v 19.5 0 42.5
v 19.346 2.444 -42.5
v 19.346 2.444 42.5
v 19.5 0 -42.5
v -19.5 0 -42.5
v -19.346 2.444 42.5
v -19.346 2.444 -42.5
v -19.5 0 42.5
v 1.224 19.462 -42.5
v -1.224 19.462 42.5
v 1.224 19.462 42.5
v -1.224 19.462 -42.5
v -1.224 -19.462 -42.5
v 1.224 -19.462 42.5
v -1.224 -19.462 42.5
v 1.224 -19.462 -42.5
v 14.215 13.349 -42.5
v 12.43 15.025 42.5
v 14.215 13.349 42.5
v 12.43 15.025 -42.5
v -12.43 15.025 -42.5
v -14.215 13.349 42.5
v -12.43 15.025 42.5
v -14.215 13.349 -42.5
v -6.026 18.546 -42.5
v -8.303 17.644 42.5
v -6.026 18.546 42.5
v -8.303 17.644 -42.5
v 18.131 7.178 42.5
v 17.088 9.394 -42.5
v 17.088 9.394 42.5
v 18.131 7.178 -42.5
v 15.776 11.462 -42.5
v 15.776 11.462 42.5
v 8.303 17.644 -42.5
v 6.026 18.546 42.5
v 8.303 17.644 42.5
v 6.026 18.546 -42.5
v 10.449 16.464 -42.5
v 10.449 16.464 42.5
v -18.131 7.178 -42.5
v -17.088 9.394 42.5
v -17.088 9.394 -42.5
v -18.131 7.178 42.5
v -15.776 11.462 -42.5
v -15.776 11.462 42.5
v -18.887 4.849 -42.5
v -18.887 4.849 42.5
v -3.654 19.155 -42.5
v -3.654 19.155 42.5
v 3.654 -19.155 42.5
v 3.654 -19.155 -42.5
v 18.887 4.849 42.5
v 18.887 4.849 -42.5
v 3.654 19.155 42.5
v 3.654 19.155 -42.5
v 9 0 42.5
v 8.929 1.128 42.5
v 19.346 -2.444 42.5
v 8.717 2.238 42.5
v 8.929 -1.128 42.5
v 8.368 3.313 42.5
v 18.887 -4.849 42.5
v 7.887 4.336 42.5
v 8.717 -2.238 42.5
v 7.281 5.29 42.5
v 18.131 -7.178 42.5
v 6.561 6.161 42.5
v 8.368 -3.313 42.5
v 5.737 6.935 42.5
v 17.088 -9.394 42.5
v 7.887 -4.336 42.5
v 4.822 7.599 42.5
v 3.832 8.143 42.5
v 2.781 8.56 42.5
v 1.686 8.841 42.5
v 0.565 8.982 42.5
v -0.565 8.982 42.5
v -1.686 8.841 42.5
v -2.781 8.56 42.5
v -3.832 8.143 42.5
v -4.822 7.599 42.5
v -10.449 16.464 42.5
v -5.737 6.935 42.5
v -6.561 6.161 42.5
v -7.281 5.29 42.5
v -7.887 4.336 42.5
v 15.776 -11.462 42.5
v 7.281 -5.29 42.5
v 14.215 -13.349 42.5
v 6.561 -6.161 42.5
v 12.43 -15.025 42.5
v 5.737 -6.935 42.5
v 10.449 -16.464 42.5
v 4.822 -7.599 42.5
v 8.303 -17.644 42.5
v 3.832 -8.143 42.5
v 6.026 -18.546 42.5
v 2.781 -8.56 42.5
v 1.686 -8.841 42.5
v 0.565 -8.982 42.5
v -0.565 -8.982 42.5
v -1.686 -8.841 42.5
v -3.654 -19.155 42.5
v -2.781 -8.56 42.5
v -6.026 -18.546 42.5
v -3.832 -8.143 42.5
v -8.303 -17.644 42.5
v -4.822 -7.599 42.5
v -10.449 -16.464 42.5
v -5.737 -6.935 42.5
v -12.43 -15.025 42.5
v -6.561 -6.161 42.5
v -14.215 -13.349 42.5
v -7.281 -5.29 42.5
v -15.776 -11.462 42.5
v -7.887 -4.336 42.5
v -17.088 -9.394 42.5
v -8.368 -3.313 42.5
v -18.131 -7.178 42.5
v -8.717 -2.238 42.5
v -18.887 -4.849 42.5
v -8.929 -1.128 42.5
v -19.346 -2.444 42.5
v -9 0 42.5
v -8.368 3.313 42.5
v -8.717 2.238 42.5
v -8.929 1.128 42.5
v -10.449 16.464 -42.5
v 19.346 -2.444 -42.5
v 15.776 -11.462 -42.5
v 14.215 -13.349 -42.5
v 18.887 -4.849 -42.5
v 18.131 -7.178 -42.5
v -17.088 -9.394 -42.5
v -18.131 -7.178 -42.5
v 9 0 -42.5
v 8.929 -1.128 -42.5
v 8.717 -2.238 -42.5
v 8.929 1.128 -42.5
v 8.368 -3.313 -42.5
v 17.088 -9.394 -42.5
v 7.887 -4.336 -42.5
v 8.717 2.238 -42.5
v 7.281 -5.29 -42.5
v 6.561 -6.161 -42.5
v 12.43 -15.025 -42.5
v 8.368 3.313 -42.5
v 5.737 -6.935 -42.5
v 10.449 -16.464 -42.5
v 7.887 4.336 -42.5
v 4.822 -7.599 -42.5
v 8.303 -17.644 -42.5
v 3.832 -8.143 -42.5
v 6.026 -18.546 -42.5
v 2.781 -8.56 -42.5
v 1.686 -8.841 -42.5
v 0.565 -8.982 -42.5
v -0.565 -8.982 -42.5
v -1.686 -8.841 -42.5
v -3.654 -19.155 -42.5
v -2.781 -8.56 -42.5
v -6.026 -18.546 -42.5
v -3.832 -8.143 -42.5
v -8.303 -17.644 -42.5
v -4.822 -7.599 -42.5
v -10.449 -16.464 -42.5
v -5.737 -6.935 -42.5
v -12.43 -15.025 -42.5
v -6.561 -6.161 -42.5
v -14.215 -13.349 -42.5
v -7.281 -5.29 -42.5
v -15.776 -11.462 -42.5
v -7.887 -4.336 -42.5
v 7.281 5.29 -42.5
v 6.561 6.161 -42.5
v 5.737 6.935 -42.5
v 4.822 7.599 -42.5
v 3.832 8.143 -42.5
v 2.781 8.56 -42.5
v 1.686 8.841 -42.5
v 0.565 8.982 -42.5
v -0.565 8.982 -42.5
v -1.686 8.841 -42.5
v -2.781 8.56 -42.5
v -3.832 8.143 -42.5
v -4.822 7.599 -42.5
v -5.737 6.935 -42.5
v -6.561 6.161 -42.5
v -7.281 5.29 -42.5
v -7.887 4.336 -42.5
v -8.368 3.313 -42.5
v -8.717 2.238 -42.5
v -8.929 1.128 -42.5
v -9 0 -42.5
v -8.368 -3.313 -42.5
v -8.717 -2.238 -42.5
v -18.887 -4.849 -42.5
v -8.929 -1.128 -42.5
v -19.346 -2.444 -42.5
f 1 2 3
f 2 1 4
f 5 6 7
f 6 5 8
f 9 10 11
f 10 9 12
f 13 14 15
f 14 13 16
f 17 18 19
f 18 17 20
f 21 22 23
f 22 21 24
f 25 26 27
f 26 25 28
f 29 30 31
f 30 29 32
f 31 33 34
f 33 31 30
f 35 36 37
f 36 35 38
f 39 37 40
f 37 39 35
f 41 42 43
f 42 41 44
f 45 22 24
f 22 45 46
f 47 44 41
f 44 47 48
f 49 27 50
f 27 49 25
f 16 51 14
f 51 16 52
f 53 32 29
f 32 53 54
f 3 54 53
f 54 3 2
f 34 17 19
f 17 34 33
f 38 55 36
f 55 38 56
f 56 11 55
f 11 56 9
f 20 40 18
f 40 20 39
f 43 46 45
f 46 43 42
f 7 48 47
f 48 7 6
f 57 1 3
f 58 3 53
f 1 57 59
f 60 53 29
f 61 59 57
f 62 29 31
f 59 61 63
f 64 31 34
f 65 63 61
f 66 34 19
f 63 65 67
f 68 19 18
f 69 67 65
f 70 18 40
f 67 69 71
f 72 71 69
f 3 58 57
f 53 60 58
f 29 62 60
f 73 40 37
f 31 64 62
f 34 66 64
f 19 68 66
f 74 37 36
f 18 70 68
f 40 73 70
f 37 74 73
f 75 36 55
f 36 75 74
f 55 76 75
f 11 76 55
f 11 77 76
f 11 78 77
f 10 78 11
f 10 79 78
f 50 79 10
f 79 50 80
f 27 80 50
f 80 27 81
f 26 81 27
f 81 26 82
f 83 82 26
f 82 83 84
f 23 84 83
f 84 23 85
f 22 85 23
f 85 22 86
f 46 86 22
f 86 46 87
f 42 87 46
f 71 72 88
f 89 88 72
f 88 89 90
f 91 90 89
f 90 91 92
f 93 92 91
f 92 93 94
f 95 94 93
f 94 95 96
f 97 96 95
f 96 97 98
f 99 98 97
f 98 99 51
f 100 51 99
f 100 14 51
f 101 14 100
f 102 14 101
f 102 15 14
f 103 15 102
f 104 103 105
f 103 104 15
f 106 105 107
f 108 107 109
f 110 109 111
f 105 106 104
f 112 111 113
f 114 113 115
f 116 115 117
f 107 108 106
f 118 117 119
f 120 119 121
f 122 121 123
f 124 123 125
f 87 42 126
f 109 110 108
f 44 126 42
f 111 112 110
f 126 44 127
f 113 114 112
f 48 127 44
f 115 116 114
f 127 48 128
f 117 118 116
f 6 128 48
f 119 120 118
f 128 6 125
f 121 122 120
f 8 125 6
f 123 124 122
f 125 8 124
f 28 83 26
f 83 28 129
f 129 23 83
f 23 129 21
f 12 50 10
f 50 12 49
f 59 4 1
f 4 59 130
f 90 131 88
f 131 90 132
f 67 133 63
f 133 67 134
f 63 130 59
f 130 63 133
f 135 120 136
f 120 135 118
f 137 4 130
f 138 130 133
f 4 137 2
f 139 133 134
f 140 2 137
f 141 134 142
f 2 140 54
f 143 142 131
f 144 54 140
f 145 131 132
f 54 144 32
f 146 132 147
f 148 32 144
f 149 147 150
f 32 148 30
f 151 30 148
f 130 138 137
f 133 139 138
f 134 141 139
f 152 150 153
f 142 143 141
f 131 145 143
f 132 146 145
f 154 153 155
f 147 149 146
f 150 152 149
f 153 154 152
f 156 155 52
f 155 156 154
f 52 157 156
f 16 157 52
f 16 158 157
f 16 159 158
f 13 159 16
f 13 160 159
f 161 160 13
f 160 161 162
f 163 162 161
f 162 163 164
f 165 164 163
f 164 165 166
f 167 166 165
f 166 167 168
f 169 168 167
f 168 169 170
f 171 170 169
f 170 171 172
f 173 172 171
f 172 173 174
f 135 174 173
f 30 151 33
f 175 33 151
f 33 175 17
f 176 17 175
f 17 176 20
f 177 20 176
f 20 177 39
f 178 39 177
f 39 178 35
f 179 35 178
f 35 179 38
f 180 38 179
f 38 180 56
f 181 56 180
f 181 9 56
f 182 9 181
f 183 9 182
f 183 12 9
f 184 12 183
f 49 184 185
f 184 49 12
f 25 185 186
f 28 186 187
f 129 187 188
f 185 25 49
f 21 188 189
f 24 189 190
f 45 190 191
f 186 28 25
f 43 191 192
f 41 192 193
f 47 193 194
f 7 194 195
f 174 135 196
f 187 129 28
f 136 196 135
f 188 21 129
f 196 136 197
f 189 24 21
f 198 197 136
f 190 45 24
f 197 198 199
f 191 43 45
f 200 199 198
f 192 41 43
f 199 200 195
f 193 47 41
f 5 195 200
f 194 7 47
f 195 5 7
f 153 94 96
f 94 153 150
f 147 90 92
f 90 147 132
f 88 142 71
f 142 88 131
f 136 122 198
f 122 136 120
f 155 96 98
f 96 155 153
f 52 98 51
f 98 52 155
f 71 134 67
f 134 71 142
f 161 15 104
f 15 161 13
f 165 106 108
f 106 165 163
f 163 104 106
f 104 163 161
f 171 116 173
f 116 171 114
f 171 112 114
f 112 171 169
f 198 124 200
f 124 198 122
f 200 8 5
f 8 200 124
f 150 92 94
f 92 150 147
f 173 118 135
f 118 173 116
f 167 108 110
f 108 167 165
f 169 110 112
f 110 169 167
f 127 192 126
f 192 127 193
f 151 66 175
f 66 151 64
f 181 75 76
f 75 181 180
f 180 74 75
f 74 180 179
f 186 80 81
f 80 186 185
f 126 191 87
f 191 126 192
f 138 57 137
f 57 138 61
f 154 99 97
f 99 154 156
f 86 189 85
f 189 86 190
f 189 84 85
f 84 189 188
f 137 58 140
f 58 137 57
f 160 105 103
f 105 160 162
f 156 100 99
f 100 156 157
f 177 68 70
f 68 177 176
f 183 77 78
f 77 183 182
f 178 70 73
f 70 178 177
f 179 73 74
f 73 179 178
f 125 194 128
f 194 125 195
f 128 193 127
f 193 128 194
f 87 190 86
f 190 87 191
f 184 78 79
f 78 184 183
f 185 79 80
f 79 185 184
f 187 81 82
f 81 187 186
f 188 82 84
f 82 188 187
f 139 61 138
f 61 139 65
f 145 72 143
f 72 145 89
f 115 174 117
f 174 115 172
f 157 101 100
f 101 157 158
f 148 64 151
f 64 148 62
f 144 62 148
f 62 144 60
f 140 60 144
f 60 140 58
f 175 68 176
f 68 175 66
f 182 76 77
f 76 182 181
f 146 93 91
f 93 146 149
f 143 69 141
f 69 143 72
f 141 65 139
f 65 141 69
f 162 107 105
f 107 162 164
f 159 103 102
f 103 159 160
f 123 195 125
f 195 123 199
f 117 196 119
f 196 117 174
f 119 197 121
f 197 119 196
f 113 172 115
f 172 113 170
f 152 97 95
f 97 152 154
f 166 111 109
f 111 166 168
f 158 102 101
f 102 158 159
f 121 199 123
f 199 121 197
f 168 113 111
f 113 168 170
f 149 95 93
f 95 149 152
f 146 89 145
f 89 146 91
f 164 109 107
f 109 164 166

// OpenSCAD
$fn = 50;


difference() {
	union() {
		translate(v = [0, 0, -42.5000000000]) {
			cylinder(h = 85, r = 19.5000000000);
		}
	}
	union() {
		translate(v = [0, 0, -100.0000000000]) {
			cylinder(h = 200, r = 9);
		}
	}
}
